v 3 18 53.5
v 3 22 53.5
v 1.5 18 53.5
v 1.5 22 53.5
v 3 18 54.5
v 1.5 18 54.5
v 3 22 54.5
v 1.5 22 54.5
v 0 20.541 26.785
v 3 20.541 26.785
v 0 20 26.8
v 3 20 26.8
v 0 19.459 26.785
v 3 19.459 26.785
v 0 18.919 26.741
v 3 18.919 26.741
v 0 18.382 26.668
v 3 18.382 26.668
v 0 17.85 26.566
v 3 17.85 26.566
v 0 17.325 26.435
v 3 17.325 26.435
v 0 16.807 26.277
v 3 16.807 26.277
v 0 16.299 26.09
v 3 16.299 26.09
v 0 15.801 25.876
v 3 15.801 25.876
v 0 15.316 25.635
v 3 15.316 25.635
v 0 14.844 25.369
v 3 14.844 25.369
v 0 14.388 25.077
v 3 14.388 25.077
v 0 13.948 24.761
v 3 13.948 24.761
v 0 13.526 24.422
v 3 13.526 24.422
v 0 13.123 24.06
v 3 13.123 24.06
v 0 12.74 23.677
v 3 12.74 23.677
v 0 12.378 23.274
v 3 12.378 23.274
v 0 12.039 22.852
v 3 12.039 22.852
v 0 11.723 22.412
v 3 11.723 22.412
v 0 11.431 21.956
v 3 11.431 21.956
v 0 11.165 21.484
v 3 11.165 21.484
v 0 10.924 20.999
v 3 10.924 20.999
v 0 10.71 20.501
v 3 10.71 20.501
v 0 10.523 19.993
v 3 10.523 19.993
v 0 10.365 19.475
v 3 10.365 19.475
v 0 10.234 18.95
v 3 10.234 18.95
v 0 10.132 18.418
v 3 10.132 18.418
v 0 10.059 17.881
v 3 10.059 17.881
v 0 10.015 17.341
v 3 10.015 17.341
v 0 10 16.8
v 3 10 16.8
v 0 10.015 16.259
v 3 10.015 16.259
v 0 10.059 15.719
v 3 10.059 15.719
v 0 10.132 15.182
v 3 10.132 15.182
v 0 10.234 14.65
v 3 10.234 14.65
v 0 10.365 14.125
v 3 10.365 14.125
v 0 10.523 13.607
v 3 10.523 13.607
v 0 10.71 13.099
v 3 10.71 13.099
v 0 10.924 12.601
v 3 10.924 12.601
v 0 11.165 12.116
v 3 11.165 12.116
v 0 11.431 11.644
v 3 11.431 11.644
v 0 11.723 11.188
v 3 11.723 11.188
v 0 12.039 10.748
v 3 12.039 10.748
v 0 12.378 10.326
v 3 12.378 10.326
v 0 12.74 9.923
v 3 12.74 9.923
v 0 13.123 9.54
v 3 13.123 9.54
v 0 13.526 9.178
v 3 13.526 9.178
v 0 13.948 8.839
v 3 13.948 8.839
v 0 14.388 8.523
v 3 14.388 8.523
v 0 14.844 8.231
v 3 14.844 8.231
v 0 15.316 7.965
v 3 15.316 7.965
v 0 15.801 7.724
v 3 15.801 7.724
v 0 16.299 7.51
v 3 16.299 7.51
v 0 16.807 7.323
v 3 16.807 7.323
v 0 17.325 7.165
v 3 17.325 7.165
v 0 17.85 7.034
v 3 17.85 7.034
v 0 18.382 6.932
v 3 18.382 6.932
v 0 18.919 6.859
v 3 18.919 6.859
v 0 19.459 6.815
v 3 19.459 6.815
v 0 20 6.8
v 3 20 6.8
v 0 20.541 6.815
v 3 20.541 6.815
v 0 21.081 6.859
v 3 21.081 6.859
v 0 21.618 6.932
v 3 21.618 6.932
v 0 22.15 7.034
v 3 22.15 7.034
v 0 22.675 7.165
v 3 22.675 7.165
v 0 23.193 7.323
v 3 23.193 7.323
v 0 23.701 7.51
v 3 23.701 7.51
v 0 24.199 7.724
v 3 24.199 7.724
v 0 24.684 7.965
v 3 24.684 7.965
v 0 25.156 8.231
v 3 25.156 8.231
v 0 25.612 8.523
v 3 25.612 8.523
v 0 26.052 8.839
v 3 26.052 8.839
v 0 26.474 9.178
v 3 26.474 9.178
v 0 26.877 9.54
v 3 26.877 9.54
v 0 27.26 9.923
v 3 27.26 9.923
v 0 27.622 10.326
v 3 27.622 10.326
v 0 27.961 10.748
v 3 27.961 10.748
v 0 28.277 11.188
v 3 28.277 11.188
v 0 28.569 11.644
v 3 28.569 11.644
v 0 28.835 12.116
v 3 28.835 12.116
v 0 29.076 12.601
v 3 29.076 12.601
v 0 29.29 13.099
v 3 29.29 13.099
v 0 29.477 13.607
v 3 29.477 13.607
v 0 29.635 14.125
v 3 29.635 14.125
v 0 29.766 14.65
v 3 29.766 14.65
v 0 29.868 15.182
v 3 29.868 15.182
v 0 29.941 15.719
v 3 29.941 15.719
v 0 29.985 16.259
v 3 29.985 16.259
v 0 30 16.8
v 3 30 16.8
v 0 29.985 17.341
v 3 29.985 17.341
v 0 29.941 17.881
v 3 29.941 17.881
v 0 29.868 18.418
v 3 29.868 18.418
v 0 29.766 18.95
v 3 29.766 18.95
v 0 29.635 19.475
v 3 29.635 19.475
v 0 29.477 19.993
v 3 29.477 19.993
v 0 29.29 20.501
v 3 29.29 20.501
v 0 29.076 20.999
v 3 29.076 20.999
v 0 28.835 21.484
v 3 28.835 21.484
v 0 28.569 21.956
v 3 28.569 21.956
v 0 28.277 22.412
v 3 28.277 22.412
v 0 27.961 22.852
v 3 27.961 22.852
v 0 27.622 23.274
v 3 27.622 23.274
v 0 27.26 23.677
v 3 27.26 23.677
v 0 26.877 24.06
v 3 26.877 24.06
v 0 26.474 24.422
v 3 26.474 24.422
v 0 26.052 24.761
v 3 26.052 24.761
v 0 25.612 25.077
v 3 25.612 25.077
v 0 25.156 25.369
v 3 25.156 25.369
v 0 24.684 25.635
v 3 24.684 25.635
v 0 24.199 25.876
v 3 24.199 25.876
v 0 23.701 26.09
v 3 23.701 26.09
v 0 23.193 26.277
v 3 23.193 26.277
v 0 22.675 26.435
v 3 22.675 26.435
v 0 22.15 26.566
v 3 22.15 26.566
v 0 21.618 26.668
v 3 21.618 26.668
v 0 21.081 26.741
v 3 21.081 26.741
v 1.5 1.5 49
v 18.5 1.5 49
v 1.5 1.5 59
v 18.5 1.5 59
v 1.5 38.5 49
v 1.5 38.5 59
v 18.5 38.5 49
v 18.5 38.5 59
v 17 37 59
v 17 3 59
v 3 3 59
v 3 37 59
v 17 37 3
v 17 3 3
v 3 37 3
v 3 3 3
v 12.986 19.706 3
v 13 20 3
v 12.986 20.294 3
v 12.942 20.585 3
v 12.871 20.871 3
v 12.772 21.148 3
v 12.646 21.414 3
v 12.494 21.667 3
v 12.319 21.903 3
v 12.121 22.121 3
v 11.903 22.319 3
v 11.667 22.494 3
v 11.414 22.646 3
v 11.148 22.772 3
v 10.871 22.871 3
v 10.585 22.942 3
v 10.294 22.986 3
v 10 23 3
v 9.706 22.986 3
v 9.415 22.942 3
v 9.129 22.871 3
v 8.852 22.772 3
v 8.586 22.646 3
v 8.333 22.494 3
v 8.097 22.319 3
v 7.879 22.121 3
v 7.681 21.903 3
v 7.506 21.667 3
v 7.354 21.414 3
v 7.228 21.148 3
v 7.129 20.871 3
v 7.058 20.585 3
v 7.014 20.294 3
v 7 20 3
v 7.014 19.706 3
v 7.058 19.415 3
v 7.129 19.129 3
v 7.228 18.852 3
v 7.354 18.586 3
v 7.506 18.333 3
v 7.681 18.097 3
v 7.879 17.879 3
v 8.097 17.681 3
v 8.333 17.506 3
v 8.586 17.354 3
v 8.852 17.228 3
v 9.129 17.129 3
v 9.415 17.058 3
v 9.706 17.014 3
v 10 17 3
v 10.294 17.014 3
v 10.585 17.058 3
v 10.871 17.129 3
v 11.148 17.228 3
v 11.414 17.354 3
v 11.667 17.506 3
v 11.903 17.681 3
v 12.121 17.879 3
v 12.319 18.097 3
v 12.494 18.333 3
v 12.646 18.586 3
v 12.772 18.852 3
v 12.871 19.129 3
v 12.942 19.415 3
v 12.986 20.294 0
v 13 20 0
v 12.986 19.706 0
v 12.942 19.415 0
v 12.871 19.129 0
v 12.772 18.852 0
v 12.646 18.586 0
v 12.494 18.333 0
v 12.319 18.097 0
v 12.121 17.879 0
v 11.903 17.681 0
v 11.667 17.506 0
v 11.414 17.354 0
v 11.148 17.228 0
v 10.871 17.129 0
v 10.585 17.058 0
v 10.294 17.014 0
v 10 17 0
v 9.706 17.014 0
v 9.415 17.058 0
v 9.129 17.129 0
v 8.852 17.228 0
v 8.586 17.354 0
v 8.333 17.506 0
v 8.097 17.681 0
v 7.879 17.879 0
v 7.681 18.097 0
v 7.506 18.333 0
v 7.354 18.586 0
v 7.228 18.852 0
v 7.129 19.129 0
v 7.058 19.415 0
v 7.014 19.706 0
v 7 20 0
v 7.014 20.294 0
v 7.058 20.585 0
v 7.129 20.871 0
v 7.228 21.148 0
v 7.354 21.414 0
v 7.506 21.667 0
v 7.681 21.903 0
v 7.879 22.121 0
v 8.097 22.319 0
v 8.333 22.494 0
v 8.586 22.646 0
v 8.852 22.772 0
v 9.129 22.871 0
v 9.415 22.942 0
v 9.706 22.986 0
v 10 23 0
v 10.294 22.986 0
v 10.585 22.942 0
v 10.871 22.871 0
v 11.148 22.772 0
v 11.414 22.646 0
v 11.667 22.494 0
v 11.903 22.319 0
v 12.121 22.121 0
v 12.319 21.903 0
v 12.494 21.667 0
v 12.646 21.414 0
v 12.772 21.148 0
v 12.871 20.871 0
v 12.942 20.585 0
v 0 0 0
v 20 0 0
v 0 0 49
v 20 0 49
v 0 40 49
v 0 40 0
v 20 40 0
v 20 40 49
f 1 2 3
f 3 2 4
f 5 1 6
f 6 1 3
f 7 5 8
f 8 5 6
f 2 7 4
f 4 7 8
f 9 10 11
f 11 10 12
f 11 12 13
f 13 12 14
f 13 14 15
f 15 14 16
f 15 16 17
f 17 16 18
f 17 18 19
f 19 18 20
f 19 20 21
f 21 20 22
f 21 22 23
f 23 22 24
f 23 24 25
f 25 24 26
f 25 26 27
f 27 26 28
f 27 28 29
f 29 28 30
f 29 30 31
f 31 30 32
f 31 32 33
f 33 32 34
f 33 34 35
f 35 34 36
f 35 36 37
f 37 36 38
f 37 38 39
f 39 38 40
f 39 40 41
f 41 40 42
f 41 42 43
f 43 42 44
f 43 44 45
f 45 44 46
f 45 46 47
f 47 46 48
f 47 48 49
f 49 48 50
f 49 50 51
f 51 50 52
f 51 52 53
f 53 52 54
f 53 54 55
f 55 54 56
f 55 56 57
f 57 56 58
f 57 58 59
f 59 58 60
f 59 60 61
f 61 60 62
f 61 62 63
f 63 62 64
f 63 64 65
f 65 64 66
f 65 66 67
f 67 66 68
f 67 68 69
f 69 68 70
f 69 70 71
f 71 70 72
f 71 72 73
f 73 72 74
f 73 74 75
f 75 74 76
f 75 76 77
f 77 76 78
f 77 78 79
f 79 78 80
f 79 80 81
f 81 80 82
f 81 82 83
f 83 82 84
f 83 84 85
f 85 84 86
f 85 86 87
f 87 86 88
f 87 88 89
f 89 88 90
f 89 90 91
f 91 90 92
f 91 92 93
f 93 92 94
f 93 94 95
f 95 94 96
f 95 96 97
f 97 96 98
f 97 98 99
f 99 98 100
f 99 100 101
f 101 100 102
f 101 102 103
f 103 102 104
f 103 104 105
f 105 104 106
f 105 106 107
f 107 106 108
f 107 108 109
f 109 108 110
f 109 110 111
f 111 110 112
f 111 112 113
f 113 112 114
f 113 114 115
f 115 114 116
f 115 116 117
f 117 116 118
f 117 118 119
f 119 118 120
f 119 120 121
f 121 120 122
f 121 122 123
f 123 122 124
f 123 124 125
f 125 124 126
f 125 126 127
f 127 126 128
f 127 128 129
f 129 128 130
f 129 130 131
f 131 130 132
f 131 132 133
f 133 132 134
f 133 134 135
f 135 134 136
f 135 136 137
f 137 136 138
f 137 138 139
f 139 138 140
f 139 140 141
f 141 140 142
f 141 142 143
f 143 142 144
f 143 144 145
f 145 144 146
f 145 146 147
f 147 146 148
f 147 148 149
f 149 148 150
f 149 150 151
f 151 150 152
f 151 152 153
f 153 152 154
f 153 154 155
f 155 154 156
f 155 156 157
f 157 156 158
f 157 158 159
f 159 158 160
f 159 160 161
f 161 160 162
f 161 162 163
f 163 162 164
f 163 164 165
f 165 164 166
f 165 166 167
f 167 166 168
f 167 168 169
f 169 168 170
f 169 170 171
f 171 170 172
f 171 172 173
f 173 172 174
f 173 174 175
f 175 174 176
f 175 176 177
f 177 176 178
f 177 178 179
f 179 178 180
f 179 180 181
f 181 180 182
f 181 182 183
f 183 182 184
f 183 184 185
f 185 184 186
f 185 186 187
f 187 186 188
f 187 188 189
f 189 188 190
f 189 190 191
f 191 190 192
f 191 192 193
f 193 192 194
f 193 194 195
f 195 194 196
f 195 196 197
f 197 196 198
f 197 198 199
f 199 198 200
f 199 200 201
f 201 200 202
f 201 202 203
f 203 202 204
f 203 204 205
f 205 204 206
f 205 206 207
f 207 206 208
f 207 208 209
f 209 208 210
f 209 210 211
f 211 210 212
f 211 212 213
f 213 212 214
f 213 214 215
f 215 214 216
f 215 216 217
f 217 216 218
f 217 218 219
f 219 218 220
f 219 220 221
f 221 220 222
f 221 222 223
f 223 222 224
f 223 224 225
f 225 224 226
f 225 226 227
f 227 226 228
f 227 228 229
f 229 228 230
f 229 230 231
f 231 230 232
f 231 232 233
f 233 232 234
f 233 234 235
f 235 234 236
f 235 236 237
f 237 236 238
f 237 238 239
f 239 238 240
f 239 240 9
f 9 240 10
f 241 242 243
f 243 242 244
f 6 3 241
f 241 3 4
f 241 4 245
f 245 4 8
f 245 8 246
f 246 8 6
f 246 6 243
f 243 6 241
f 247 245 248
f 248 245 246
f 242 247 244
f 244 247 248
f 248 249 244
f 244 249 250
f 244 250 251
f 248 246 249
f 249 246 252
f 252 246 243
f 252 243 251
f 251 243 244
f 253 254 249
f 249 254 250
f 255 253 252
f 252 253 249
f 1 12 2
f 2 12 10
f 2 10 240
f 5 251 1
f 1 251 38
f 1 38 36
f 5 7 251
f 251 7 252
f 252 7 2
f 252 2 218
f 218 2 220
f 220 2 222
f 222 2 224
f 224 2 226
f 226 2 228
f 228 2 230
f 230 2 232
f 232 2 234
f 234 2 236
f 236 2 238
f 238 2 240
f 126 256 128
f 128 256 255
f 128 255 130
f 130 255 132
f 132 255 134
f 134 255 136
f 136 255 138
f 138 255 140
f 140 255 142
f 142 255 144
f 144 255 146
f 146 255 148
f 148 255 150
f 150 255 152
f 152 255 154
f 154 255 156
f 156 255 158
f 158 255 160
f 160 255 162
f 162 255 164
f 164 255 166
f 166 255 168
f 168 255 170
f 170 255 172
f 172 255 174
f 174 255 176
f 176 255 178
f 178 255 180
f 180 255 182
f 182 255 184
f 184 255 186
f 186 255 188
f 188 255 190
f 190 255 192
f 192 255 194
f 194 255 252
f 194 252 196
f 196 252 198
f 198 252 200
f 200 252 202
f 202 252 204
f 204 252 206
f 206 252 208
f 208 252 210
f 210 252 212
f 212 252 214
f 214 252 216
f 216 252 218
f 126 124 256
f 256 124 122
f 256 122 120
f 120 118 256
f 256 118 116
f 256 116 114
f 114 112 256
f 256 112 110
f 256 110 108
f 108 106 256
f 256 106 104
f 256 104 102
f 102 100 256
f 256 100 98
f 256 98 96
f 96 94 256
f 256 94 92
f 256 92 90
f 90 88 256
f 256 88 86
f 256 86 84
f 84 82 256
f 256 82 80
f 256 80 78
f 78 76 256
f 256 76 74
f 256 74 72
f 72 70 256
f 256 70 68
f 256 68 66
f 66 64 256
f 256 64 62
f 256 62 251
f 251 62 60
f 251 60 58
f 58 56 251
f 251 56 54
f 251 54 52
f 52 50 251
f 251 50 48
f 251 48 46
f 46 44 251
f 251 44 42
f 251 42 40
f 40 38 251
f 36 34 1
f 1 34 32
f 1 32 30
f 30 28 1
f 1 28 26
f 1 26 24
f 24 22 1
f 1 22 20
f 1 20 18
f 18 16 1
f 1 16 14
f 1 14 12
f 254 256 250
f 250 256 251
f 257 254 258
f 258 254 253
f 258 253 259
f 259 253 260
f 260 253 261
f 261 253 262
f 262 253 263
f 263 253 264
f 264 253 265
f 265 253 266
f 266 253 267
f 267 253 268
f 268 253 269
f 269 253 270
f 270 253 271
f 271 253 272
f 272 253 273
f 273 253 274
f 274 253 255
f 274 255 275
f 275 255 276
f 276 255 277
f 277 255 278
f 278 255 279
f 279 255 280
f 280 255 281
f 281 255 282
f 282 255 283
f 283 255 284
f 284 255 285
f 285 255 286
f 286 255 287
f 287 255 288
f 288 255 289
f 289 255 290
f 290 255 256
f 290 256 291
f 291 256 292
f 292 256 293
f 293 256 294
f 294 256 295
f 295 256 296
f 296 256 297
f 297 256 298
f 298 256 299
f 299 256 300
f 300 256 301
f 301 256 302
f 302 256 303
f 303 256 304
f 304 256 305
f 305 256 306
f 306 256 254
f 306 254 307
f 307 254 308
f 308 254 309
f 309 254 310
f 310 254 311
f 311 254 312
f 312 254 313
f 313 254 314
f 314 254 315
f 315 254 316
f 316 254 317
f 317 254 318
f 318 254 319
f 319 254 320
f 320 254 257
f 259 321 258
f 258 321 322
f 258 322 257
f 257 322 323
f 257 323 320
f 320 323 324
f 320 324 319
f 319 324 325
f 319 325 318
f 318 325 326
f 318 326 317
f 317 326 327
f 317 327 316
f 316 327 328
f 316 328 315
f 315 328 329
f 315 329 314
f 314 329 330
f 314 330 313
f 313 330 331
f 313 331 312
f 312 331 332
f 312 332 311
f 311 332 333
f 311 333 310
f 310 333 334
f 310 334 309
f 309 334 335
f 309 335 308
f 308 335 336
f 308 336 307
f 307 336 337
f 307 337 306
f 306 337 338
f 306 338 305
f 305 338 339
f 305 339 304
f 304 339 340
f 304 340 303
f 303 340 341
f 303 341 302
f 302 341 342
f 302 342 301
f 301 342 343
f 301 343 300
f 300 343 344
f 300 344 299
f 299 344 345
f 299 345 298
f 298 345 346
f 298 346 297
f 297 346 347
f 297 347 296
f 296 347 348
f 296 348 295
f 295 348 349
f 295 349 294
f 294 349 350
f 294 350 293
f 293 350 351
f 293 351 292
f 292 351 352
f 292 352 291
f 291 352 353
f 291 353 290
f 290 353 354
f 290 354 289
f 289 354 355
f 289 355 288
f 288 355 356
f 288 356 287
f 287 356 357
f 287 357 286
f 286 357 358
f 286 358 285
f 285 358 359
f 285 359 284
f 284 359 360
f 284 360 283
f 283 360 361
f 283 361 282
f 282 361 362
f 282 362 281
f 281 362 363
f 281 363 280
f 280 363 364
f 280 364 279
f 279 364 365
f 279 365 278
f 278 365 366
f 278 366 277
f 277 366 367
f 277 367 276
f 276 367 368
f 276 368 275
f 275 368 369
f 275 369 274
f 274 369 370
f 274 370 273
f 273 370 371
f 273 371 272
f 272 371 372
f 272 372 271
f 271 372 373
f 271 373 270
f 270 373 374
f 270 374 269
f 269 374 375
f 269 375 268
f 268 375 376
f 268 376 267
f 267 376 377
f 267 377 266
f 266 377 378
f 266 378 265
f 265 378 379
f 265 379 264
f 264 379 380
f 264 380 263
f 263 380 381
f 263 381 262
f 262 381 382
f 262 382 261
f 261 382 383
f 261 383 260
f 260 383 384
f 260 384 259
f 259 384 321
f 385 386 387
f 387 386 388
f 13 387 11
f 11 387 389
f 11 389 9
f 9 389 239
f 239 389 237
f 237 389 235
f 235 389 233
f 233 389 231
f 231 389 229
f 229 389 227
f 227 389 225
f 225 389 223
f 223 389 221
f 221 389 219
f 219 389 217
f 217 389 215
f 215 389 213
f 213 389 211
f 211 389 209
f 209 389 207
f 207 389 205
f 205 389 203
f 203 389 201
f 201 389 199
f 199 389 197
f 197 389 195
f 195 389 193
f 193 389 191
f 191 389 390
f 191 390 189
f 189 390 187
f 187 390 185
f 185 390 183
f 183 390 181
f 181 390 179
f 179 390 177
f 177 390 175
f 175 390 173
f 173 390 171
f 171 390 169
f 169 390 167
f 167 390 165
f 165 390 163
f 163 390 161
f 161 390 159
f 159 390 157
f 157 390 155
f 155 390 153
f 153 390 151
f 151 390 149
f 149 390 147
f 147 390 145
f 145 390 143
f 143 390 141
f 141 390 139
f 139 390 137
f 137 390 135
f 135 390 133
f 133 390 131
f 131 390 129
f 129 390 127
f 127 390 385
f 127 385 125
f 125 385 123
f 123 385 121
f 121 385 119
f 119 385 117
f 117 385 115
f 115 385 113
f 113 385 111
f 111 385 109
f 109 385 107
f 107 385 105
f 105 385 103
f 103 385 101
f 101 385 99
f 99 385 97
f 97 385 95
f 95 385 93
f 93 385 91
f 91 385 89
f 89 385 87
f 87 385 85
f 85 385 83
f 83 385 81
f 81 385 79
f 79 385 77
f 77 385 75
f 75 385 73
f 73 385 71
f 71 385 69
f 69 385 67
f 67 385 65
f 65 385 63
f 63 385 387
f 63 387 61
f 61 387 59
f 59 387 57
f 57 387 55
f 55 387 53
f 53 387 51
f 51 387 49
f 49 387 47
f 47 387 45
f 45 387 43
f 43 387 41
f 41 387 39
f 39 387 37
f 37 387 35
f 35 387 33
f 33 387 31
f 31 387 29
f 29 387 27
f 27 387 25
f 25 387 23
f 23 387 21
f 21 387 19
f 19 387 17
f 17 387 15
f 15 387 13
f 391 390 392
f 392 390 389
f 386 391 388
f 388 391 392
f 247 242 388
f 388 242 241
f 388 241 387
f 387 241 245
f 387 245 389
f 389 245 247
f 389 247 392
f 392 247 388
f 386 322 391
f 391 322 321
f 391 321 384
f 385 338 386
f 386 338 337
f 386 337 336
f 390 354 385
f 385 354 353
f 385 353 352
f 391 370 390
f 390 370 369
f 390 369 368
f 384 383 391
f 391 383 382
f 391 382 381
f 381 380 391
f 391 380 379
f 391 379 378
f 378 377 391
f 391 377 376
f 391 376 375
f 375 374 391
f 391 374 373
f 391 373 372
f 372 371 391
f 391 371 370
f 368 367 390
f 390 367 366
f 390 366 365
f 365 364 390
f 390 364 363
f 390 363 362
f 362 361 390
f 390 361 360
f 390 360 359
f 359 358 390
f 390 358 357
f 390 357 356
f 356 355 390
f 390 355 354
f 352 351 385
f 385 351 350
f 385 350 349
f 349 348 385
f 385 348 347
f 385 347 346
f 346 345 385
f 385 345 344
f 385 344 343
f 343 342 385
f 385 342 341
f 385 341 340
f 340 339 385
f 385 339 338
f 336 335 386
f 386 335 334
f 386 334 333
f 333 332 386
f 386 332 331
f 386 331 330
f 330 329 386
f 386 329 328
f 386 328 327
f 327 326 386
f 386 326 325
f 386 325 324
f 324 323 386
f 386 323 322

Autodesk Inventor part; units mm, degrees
ref_plane "YZ Plane" through (0, 0, 0) normal (1, 0, 0) x (0, 1, 0)
ref_plane "XZ Plane" through (0, 0, 0) normal (0, 1, 0) x (-1, 0, 0)
ref_plane "XY Plane" through (0, 0, 0) normal (0, 0, 1) x (1, 0, 0)
sketch "Szkic1" plane through (0, 0, 0) normal (0, 0, 1) x (1, 0, 0)
  line L0 (0, 0) -> (20, 0)
  line L1 (20, 0) -> (20, 40)
  line L2 (20, 40) -> (0, 40)
  line L3 (0, 40) -> (0, 0)
  circle A0 centre (10, 20) radius 3
  dimension "d0" = 20
  dimension "d1" = 40
  dimension "d2" = 6
extrude "Wyciągnięcie proste1" add sketch "Szkic1" along normal blind 49
sketch "Szkic2" plane through (0, 0, 49) normal (0, 0, 1) x (1, 0, 0)
  line L0 (3, 37) -> (17, 37)
  line L1 (17, 37) -> (17, 3)
  line L2 (17, 3) -> (3, 3)
  line L3 (3, 3) -> (3, 37)
  line L4 (0, 0) -> (20, 0) projected
  line L5 (20, 40) -> (0, 40) projected
  line L6 (0, 40) -> (0, 0) projected
  line L7 (20, 0) -> (20, 40) projected
  dimension "d5" = 14
  dimension "d6" = 34
  dimension "d7" = 3
  dimension "d8" = 3
  dimension "d9" = 3
  dimension "d10" = 3
extrude "Wyciągnięcie proste2" cut sketch "Szkic2" against normal blind 46 contours L0 L1 L2 L3
sketch "Szkic3" plane through (0, 0, 49) normal (0, 0, 1) x (1, 0, 0)
  line L0 (3, 3) -> (3, 37) projected
  line L1 (3, 37) -> (17, 37) projected
  line L2 (3, 3) -> (17, 3)
  line L3 (17, 3) -> (17, 37)
  line L4 (17, 37) -> (3, 37)
  line L5 (3, 37) -> (3, 3)
  line L6 (17, 3) -> (3, 3) construction
  line L7 (3, 3) -> (3, 1.5) construction
  line L8 (3, 1.5) -> (1.5, 1.5) construction
  line L9 (1.5, 1.5) -> (18.5, 1.5)
  line L10 (18.5, 1.5) -> (18.5, 38.5)
  line L11 (18.5, 38.5) -> (1.5, 38.5)
  line L12 (1.5, 38.5) -> (1.5, 1.5)
  point P0 (0, 0)
  dimension "d13" = 1.5
  dimension "d14" = 1.5
  dimension "d15" = 34
  dimension "d16" = 14
  dimension "d17" = 17
  dimension "d18" = 37
extrude "Wyciągnięcie proste3" add sketch "Szkic3" along normal blind 10
sketch "Szkic4" plane through (0, 0, 0) normal (-1, 0, 0) x (0, 0, 1)
  line L0 (0, 0) -> (0, 20)
  line L1 (0, 0) -> (0, 40) projected
  line L2 (0, 20) -> (16.8, 20)
  circle A0 centre (16.8, 20) radius 10
  dimension "d21" = 16.8
  dimension "d22" = 20
extrude "Wyciągnięcie proste4" cut sketch "Szkic4" against normal up to surface (3 mm away)
sketch "Szkic5" plane through (1.5, 1.5, 49) normal (-1, 0, 0) x (0, 0, 1)
  line L0 (0, 0) -> (10, 0) construction
  line L1 (0, 37) -> (10, 37) construction
  line L2 (10, 0) -> (0, 37) construction
  line L3 (0, 37) -> (10, 37) construction
  line L4 (10, 37) -> (0, 0) construction
  line L5 (0, 38.5) -> (0, -1.5) construction
  line L6 (5.5, 20.5) -> (4.5, 20.5)
  line L7 (4.5, 20.5) -> (4.5, 16.5)
  line L8 (4.5, 16.5) -> (5.5, 16.5)
  line L9 (5.5, 16.5) -> (5.5, 20.5)
  line L10 (5.5, 20.5) -> (4.5, 16.5) construction
  line L11 (4.5, 20.5) -> (5.5, 16.5) construction
  point P0 (-49, -1.5)
  point P1 (5, 18.5)
  dimension "d25" = 1
  dimension "d26" = 4
  dimension "d29" = 4.5
extrude "Wyciągnięcie proste5" cut sketch "Szkic5" against normal up to surface (1.5 mm away)
equation "\"d7\" = d8"
equation "\"d9\" = d10"
equation "\"d14\" = d13"
equation "\"d17\" = d16 + 2 * d14"
equation "\"d18\" = d15 + 2 * d14"
properties part number "obudowa_latarka"
